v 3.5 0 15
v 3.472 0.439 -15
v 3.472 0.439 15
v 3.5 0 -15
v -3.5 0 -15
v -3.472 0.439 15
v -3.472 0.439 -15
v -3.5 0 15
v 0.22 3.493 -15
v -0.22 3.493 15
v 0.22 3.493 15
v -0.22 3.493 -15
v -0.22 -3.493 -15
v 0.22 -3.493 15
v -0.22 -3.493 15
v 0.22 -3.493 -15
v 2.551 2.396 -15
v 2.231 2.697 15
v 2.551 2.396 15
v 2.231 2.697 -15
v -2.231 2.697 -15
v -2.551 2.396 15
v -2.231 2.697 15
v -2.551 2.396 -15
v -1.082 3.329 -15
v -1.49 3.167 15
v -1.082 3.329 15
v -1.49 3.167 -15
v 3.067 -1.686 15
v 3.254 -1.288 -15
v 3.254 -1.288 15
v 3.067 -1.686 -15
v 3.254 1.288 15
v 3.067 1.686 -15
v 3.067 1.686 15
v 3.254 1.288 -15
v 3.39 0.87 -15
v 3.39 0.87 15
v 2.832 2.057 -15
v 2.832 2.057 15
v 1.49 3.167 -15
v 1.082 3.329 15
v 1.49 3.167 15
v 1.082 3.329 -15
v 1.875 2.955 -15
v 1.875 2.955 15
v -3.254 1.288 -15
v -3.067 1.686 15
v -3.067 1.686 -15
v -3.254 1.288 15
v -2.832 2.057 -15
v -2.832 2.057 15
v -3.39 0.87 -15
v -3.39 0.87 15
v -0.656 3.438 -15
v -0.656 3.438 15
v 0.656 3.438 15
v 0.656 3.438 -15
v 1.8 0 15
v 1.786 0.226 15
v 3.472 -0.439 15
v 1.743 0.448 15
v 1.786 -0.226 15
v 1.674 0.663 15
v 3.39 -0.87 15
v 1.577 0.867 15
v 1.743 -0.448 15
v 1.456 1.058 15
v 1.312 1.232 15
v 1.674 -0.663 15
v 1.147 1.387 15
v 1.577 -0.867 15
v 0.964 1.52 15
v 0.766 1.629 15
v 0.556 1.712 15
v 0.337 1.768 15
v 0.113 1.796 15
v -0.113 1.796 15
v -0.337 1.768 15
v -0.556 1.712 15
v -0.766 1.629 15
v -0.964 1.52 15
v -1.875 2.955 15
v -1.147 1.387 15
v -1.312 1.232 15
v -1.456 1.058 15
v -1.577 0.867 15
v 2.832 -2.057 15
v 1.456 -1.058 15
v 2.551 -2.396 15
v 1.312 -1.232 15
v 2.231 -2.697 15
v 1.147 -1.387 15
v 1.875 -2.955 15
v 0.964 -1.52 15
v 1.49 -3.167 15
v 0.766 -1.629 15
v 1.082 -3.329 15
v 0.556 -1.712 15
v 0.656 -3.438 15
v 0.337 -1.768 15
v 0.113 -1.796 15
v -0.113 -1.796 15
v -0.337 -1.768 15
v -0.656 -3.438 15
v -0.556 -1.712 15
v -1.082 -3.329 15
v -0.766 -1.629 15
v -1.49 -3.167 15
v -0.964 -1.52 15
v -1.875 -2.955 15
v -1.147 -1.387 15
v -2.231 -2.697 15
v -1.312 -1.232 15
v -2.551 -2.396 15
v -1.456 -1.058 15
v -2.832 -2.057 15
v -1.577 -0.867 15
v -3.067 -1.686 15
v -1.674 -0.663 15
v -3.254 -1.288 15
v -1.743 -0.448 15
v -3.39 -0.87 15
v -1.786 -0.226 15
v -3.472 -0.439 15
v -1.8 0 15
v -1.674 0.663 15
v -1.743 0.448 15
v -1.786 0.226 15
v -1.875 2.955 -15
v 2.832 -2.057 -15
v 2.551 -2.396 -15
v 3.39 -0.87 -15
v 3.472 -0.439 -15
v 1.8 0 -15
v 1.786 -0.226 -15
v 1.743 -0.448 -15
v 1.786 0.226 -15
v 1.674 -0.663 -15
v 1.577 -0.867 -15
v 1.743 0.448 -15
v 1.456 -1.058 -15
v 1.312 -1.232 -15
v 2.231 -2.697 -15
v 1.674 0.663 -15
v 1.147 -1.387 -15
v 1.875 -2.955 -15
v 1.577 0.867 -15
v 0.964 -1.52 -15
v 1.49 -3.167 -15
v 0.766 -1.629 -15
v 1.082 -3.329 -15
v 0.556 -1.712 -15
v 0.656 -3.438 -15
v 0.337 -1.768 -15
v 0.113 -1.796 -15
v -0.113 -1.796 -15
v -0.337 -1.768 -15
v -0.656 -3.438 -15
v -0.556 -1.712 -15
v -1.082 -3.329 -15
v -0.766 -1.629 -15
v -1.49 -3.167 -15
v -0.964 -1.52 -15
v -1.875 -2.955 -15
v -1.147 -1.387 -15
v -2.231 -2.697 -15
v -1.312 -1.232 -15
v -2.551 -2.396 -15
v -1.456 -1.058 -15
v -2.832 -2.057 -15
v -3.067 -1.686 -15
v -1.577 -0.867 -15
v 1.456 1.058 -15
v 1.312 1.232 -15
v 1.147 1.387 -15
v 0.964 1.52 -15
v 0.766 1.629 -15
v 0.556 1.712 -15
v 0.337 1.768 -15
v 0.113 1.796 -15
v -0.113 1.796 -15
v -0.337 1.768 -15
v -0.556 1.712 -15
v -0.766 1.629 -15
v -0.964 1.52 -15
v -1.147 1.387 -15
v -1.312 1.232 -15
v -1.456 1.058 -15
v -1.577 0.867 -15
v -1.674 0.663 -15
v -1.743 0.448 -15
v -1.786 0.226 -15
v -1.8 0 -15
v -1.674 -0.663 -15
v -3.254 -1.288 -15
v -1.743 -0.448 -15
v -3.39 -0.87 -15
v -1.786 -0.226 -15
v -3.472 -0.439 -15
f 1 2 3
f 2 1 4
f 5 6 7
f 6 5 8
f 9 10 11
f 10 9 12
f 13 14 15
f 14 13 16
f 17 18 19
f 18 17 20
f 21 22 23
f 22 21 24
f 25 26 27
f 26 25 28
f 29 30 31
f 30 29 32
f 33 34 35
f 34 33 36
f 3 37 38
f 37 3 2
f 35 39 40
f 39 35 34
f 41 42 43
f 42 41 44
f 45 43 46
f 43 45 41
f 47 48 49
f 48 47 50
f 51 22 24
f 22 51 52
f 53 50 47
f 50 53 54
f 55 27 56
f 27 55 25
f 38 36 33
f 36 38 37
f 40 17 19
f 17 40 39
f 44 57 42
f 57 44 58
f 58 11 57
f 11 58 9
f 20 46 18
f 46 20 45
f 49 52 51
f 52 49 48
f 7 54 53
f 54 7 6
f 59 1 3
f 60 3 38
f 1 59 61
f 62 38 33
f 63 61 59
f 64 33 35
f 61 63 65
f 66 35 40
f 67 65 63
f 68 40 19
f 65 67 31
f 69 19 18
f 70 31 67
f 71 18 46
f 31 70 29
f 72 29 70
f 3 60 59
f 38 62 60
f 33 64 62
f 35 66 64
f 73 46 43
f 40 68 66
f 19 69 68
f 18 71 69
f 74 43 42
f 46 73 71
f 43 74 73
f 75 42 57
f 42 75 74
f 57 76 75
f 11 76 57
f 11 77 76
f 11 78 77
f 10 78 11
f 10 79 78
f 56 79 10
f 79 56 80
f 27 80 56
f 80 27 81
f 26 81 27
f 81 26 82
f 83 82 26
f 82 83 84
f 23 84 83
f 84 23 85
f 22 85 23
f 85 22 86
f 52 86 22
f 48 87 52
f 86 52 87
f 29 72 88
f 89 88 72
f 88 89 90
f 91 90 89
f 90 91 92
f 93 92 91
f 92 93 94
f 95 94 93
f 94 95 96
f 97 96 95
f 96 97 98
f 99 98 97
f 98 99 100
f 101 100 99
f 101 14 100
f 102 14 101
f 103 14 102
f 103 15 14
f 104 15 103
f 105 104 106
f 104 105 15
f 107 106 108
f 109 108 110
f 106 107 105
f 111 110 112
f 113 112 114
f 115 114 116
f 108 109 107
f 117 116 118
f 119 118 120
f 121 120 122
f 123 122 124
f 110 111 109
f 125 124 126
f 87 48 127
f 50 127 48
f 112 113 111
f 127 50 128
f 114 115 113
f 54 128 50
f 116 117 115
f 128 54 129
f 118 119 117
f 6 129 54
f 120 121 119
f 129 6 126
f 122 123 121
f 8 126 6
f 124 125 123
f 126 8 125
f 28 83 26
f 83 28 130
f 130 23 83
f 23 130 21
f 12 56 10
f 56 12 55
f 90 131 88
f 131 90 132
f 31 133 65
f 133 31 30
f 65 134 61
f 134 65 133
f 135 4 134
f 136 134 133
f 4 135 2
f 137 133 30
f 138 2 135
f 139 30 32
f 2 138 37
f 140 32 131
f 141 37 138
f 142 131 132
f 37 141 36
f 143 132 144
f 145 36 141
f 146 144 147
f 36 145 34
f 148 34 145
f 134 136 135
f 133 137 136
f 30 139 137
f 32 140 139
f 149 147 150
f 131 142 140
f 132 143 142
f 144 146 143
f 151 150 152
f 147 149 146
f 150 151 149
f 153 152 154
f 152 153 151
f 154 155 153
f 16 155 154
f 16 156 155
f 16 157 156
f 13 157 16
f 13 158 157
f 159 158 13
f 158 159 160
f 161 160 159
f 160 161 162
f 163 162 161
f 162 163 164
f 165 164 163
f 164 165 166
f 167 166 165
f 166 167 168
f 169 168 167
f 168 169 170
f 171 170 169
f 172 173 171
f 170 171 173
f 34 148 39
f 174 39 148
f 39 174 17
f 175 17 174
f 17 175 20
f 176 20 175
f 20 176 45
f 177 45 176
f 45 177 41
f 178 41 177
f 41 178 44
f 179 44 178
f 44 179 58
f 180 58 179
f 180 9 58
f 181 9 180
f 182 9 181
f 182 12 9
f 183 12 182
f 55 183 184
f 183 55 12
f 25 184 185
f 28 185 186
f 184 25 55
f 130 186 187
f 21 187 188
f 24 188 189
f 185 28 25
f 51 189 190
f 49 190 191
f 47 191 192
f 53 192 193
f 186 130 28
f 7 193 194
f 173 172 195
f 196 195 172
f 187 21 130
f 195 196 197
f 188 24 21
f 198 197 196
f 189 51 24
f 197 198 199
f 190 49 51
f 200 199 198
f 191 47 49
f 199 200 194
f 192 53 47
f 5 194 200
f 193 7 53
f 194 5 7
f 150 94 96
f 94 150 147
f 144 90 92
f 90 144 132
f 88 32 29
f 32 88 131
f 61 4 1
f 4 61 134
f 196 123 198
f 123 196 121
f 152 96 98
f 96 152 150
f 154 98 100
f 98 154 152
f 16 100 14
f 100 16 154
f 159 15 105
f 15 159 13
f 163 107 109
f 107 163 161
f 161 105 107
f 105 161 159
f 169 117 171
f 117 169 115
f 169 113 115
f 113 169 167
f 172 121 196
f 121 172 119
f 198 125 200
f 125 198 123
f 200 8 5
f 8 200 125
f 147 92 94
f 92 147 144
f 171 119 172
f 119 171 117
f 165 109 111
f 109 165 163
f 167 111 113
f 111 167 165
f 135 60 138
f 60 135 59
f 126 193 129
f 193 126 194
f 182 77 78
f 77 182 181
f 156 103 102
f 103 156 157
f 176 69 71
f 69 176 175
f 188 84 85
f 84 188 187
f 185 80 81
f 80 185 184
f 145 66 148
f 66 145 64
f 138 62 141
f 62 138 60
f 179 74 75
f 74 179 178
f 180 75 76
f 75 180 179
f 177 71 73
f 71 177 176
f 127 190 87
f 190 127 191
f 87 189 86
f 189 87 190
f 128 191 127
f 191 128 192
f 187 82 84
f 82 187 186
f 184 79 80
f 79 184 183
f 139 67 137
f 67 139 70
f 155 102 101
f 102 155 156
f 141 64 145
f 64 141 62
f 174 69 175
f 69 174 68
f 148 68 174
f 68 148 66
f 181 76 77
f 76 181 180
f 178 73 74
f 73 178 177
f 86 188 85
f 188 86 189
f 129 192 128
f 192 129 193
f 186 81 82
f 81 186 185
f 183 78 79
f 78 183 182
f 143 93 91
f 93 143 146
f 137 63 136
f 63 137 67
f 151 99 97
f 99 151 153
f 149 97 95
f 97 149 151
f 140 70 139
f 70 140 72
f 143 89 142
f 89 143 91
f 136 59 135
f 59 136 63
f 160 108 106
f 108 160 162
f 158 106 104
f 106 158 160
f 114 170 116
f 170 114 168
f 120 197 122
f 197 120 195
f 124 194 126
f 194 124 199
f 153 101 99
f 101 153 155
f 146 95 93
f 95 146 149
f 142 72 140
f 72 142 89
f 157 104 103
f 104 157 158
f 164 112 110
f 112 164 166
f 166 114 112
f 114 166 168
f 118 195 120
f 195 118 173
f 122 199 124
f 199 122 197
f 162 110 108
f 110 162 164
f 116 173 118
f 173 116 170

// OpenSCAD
$fn = 50;


difference() {
	union() {
		translate(v = [0, 0, -15.0000000000]) {
			cylinder(h = 30, r = 3.5000000000);
		}
	}
	union() {
		translate(v = [0, 0, -100.0000000000]) {
			cylinder(h = 200, r = 1.8000000000);
		}
	}
}
